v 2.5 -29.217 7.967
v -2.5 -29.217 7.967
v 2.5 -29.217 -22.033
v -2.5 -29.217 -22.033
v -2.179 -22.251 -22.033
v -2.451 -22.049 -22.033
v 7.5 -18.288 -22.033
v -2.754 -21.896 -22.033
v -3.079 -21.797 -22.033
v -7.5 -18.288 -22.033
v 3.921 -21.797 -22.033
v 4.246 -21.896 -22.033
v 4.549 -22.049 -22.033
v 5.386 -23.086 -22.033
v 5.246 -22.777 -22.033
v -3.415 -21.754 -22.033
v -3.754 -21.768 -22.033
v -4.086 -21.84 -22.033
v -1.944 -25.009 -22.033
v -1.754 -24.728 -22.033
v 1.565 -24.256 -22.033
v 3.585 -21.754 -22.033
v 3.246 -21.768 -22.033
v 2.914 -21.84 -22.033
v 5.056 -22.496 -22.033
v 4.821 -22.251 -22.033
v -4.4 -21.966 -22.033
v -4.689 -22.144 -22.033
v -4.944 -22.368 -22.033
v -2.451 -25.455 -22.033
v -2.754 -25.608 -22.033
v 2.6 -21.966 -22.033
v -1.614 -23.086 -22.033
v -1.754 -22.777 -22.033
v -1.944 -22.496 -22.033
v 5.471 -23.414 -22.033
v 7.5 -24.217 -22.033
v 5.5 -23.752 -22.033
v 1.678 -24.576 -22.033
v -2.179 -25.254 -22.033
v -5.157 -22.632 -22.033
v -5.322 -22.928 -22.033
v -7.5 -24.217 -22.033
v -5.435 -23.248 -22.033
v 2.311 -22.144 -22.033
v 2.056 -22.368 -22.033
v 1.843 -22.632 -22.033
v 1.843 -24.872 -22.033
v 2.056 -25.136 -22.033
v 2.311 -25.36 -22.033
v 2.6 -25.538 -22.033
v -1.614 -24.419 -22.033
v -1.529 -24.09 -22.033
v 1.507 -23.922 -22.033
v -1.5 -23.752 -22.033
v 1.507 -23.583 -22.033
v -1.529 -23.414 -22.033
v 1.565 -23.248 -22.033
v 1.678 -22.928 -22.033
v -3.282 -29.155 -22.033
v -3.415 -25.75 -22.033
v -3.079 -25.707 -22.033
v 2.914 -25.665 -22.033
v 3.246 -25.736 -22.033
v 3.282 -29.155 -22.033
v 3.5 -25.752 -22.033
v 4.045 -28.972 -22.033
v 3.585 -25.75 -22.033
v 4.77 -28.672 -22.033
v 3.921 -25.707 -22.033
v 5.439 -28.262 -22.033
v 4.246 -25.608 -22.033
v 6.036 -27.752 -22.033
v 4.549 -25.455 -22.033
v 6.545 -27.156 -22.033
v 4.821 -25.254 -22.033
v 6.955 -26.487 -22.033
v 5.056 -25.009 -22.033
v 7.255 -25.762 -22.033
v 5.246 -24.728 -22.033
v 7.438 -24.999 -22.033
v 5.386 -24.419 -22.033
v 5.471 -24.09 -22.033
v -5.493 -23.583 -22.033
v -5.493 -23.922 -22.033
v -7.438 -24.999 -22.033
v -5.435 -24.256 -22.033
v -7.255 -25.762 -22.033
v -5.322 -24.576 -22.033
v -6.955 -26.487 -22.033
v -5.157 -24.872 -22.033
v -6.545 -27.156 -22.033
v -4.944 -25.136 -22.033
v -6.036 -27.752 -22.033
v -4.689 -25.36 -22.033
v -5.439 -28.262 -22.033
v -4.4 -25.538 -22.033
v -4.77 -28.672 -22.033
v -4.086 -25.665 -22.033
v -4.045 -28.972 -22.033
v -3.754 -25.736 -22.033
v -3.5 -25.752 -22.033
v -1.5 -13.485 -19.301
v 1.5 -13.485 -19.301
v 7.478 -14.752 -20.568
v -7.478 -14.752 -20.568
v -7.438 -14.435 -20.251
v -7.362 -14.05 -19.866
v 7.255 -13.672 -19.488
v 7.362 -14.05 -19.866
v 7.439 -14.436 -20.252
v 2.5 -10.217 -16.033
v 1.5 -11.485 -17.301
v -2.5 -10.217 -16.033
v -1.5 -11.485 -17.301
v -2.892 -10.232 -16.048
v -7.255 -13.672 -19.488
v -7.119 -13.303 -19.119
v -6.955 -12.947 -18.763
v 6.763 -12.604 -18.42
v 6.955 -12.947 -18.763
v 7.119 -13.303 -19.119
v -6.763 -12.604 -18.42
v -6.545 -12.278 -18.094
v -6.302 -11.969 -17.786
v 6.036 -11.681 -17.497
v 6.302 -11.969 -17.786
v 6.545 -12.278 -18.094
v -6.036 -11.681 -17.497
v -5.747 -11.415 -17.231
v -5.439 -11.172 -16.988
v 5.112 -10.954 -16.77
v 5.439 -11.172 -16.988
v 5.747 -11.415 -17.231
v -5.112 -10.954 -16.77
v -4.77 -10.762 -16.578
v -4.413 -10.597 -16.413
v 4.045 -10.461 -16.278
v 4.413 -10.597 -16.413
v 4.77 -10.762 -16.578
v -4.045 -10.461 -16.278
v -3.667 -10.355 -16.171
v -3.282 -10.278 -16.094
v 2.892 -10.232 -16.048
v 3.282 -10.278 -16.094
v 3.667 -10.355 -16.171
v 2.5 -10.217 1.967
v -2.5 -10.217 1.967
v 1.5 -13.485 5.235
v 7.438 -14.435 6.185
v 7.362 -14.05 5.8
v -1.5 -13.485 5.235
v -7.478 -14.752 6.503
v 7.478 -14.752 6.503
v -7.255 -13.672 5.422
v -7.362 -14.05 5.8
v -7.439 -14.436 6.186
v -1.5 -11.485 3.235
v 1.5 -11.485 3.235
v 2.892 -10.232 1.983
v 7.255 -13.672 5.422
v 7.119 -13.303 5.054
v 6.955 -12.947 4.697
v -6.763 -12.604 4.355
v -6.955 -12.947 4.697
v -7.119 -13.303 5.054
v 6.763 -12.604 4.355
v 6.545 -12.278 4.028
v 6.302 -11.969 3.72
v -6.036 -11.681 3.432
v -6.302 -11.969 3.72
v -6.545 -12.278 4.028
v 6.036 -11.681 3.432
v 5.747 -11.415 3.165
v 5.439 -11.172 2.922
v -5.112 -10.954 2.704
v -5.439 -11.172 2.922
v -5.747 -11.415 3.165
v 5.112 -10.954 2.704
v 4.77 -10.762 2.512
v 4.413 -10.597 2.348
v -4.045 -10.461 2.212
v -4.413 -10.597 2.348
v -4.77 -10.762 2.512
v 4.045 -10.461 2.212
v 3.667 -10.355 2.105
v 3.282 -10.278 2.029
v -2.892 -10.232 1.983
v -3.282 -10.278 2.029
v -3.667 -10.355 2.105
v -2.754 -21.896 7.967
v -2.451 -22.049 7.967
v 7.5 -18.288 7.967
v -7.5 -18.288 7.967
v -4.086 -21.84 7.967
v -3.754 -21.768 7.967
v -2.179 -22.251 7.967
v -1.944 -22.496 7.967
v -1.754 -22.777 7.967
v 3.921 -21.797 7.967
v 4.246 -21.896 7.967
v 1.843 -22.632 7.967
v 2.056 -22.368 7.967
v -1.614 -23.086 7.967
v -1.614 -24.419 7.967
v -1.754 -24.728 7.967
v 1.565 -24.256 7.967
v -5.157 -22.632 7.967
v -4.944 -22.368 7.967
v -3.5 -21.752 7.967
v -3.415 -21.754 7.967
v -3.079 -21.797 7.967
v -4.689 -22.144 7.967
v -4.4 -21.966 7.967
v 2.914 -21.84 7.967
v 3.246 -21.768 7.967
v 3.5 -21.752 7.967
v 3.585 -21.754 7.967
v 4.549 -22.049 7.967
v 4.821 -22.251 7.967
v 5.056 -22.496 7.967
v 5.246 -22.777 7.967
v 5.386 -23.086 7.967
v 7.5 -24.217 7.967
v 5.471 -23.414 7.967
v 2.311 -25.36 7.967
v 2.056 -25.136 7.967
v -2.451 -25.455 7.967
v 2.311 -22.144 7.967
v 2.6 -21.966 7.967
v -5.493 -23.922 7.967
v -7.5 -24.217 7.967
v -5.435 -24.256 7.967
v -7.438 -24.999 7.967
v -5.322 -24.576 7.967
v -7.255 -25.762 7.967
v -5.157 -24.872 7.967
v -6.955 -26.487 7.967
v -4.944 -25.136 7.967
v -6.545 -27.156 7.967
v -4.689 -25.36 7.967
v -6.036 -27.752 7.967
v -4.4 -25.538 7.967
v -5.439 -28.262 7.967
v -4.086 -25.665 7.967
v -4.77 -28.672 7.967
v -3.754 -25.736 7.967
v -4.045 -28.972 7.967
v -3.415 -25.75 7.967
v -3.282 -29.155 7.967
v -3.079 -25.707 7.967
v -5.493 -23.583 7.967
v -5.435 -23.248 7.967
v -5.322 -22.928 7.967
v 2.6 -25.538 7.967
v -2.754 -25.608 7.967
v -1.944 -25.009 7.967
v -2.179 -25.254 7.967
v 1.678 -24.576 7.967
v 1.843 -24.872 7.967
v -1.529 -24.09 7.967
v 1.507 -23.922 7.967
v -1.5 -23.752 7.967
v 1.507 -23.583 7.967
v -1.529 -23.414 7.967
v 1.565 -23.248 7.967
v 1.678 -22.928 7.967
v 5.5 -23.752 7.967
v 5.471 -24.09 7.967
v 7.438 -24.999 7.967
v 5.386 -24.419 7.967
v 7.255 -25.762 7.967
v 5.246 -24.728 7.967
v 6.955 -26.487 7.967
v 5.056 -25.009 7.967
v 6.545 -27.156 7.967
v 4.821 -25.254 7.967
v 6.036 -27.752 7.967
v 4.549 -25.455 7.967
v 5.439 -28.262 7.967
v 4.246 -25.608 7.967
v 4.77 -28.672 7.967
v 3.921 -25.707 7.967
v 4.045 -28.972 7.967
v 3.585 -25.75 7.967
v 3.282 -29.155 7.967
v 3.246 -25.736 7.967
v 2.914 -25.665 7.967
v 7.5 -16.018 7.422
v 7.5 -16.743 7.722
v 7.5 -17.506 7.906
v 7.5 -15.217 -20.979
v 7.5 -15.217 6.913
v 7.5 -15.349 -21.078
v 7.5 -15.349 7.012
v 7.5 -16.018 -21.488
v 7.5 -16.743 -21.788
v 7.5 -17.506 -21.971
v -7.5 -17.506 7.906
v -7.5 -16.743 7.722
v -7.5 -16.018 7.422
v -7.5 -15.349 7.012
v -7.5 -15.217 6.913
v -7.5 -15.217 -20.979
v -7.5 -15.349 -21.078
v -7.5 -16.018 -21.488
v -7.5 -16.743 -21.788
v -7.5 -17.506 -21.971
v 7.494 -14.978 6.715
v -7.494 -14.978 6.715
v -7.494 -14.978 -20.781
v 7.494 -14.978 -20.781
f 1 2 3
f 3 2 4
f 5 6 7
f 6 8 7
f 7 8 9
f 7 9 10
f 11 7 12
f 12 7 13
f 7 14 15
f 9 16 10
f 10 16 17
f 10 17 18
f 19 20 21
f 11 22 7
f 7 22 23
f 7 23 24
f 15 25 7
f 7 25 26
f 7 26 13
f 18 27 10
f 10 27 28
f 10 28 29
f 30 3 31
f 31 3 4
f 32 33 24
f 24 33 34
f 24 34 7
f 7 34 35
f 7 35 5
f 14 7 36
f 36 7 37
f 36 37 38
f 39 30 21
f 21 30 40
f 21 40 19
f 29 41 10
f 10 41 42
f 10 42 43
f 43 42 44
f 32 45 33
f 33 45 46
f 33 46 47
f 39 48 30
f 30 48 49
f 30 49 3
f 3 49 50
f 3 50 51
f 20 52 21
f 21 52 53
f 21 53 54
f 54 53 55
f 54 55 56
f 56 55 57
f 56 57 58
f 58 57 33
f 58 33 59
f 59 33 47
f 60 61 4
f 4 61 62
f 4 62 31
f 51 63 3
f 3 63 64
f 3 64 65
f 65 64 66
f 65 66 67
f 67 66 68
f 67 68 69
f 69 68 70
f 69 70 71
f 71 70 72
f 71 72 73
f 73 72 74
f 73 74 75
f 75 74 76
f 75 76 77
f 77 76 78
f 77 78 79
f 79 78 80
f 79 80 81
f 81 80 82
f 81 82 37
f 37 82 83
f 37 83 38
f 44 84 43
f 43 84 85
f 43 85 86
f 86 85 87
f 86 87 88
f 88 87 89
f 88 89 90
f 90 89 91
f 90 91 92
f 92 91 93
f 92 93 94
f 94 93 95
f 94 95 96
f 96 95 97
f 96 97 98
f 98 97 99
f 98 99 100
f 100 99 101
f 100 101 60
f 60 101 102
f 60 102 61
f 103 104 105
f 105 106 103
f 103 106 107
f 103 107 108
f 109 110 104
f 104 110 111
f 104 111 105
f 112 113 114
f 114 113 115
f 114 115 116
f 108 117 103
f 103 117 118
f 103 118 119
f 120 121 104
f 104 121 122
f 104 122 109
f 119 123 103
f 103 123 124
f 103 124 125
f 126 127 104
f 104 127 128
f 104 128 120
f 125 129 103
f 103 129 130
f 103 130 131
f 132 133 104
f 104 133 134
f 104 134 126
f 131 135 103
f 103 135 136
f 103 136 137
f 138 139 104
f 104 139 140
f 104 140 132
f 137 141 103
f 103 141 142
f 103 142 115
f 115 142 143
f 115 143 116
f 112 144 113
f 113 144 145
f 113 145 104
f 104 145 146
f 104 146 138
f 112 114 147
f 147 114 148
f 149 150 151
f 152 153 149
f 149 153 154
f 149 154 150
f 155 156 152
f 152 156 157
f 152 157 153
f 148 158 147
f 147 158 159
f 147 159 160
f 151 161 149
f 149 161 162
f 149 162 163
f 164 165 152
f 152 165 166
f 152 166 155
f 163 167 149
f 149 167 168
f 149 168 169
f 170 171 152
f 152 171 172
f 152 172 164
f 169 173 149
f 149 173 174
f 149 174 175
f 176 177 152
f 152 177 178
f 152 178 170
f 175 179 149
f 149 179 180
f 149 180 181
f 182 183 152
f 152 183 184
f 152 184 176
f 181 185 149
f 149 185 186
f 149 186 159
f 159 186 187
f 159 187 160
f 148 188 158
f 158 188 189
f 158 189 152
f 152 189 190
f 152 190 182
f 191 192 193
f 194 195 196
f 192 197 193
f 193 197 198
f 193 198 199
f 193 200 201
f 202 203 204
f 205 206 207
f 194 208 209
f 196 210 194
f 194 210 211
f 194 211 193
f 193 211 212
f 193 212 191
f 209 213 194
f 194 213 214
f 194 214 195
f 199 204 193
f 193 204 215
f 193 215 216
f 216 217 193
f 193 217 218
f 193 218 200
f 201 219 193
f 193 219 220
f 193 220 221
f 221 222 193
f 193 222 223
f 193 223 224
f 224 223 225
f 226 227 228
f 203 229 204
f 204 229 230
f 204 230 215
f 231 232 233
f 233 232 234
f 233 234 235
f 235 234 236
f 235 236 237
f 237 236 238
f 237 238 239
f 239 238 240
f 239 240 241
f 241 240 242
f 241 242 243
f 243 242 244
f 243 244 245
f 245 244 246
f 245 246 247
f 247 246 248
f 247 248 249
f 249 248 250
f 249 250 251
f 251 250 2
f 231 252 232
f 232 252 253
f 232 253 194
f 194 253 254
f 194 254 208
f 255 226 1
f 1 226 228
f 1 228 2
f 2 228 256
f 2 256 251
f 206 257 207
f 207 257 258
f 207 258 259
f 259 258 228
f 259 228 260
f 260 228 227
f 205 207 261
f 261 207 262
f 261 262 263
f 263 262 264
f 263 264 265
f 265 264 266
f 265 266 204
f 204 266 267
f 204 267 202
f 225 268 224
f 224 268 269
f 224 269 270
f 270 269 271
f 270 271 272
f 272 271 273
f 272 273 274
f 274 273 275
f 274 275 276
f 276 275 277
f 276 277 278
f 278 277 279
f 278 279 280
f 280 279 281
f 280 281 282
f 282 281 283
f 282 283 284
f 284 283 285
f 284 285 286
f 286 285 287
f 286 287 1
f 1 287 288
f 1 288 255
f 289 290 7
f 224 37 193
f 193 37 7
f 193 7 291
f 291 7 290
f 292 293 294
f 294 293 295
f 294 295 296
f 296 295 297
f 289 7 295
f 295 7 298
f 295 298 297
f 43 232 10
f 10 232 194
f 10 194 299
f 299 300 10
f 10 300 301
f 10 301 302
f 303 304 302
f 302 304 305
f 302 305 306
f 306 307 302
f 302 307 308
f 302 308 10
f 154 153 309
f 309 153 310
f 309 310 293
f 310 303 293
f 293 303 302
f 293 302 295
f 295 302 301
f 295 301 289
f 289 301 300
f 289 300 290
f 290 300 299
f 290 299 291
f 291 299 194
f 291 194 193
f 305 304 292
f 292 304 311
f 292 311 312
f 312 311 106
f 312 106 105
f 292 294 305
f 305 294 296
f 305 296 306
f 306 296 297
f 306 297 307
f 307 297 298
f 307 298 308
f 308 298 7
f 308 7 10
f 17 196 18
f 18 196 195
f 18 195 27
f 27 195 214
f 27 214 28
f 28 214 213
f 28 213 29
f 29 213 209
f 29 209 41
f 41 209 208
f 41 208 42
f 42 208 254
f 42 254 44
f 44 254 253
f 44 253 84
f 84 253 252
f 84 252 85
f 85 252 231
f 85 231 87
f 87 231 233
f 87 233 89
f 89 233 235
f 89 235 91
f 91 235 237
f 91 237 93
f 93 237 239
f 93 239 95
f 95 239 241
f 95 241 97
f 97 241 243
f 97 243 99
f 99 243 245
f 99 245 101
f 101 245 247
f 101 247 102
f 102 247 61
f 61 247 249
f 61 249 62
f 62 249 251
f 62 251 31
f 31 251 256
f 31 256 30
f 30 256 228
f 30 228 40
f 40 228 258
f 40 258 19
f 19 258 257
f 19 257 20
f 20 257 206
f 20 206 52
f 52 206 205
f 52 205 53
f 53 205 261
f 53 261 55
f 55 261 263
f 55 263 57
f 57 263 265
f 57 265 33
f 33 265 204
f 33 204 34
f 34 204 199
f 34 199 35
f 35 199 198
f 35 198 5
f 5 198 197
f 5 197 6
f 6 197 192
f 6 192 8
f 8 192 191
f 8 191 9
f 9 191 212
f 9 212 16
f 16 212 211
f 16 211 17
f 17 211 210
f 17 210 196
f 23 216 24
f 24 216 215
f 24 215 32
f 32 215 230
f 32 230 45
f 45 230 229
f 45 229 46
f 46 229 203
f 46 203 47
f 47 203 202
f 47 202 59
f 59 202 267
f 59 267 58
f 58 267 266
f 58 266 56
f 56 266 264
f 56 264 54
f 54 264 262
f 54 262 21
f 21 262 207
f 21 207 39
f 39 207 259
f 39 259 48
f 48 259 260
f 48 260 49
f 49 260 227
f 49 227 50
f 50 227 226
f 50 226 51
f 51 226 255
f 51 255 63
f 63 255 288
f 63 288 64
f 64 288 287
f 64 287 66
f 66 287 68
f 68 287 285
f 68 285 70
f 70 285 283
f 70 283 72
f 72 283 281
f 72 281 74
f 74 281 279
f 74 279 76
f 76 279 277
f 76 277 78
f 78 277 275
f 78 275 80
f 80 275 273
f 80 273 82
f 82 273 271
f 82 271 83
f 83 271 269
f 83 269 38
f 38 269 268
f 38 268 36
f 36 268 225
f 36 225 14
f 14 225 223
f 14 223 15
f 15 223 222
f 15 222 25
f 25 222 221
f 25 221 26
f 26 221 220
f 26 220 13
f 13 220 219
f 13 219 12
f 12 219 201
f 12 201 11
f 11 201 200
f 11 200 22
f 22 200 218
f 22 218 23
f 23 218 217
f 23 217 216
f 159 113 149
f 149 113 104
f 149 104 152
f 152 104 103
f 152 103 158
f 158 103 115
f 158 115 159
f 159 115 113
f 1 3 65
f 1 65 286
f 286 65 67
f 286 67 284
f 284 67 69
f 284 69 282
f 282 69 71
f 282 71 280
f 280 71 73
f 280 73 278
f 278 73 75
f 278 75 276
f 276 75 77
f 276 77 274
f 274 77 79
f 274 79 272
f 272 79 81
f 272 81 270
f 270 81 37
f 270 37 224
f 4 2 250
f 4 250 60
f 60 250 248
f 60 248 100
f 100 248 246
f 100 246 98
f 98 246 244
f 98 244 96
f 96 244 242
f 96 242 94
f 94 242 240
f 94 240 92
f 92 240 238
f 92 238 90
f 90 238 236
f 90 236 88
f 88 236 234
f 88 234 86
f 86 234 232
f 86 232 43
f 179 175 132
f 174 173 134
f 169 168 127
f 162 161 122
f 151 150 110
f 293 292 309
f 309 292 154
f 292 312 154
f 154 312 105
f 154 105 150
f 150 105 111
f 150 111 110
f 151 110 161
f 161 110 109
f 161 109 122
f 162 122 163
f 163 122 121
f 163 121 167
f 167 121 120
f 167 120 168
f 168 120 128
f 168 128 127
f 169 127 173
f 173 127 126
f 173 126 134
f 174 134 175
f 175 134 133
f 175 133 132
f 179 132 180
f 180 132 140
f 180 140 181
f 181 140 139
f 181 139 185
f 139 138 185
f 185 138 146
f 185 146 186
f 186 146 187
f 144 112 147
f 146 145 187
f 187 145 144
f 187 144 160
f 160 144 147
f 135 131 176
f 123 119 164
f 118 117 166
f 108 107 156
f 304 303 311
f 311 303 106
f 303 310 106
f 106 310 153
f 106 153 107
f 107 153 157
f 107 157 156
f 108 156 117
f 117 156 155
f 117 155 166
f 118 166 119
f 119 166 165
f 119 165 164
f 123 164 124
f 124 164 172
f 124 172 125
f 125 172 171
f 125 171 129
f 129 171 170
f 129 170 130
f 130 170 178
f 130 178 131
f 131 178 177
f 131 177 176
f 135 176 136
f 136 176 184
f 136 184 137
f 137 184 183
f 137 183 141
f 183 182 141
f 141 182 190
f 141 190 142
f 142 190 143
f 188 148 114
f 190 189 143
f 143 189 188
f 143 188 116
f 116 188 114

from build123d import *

# Parameters (mm, degrees)
BOSS_EXTRUDE2_DEPTH = 7.5
FILLET2_R           = 5
SKETCH4_R           = 2
SKETCH4_W           = 3
SKETCH4_H           = 2
CUT_EXTRUDE1_DEPTH  = 100
FILLET3_R           = 5
FILLET4_R           = 5


with BuildPart() as part:
    # Sketch2 → Boss-Extrude2 (new, symmetric)
    with BuildSketch(Plane(origin=(0, 0, 0), x_dir=(0, 0, -1), z_dir=(1, 0, 0))):
        Polygon((-7.967160281, -29.21673477), (-7.967160281, -16.21673477), (-1.967160281, -10.21673477), (16.032839719, -10.21673477), (22.032839719, -16.21673477), (22.032839719, -29.21673477), align=None)
    extrude(amount=BOSS_EXTRUDE2_DEPTH, both=True)

    # Fillet2
    fillet2_edges = [part.edges().sort_by_distance(p)[0] for p in [
        (0, -16.21673477, 7.967160281),
        (0, -16.21673477, -22.032839719),
    ]]
    fillet(fillet2_edges, radius=FILLET2_R)

    # Sketch4 → Cut-Extrude1 (cut, symmetric)
    with BuildSketch(Plane.XY):
        with Locations(Location((-3.5, -23.752268676, 0), (0, 0, 90))):
            Circle(SKETCH4_R)
        with Locations(Location((3.5, -23.752268676, 0), (0, 0, 90))):
            Circle(SKETCH4_R)
        with Locations((0, -12.484501723)):
            Rectangle(SKETCH4_W, SKETCH4_H)
    extrude(amount=CUT_EXTRUDE1_DEPTH, both=True, mode=Mode.SUBTRACT)

    # Fillet3
    fillet3_edges = [part.edges().sort_by_distance(p)[0] for p in [
        (7.5, -29.21673477, -7.032839719),
        (-7.5, -29.21673477, -7.032839719),
    ]]
    fillet(fillet3_edges, radius=FILLET3_R)

    # Fillet4
    fillet4_edges = [part.edges().sort_by_distance(p)[0] for p in [
        (7.5, -10.21673477, -7.032839719),
        (-7.5, -10.21673477, -7.032839719),
    ]]
    fillet(fillet4_edges, radius=FILLET4_R)


solid = part.part
